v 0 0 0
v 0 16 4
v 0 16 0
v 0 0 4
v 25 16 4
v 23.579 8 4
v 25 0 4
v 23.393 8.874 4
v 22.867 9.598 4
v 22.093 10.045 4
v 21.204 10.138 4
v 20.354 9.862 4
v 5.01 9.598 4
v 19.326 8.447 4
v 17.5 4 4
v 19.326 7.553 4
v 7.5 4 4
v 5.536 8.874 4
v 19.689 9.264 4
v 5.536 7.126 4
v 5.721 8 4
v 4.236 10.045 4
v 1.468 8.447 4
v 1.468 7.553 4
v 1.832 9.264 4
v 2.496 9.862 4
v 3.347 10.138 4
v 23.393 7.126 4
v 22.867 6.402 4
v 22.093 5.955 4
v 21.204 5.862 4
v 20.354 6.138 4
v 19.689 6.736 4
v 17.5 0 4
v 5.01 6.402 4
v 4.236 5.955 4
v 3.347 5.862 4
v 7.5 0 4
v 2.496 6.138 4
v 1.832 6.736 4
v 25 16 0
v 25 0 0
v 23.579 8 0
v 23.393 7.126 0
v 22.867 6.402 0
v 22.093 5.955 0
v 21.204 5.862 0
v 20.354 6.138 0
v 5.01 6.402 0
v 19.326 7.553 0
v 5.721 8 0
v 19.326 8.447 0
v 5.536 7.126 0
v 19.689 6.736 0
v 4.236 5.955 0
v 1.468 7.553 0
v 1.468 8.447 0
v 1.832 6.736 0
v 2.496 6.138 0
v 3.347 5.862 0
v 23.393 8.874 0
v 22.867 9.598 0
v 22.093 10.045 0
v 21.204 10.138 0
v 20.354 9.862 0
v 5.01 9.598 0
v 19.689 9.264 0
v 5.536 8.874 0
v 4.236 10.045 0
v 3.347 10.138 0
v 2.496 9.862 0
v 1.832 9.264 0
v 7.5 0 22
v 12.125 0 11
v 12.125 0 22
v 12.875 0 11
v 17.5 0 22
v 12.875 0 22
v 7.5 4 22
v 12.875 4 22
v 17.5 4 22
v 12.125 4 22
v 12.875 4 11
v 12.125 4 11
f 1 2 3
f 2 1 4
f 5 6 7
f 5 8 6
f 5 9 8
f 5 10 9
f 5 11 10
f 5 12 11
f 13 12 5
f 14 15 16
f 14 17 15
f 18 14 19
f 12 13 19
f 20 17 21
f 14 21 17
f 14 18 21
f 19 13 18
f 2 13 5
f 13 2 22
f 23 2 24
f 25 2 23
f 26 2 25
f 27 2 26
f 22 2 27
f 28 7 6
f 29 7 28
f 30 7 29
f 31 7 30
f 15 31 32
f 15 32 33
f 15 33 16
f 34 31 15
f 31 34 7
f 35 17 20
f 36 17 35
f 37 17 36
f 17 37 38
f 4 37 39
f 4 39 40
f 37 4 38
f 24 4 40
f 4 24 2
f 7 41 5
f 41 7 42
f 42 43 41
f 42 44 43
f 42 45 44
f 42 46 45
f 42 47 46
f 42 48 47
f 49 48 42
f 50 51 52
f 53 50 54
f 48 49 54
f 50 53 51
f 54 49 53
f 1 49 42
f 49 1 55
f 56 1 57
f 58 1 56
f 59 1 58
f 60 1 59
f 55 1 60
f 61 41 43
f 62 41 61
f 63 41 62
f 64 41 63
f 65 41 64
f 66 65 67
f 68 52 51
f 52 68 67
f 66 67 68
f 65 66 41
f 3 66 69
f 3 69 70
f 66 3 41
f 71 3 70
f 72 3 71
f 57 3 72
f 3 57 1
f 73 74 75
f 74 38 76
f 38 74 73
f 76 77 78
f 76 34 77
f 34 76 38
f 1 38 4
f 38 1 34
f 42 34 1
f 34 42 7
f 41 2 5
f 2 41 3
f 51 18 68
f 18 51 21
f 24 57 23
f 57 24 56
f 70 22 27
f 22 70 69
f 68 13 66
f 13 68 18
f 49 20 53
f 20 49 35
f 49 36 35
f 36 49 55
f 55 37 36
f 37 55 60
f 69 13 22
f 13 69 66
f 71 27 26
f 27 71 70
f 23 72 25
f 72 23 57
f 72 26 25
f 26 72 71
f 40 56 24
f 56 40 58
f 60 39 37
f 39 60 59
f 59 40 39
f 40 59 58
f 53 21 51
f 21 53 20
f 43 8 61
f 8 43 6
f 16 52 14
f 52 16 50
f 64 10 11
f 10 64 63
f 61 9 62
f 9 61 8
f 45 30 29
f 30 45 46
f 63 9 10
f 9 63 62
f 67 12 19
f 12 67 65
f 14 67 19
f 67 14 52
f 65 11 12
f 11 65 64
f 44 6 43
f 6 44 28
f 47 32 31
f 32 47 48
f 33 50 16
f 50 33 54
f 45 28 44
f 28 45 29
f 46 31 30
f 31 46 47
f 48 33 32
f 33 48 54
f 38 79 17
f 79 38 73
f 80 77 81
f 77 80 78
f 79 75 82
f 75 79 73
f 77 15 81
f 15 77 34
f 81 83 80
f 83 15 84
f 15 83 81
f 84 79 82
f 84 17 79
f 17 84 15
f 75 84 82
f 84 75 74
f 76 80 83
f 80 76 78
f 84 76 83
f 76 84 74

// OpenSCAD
WallThickness = 4;

BaseWidth = 25;
BaseDepth = 16;
BaseHoleDiameter = 4.3;

BaseToFlagDistance = 18+WallThickness;
BaseToFlagWidth = 10;

FlagHoleWidth = 0.75;

difference() {
    cube(size=[BaseWidth, BaseDepth, WallThickness], center=false);
    translate([BaseWidth/7, BaseDepth/2, 0])
    cylinder(h=WallThickness, d=BaseHoleDiameter, center=false, $fn=15);
    translate([BaseWidth/7*6, BaseDepth/2, 0])
    cylinder(h=WallThickness, d=BaseHoleDiameter, center=false, $fn=15);
    
}

translate([(BaseWidth-BaseToFlagWidth)/2, 0, 0])
difference() {
    cube(size=[BaseToFlagWidth, WallThickness, BaseToFlagDistance], center=false);
    translate([BaseToFlagWidth/2-FlagHoleWidth/2, 0, BaseToFlagDistance/2])
    cube(size=[FlagHoleWidth, WallThickness, BaseToFlagDistance/2], center=false);
}
